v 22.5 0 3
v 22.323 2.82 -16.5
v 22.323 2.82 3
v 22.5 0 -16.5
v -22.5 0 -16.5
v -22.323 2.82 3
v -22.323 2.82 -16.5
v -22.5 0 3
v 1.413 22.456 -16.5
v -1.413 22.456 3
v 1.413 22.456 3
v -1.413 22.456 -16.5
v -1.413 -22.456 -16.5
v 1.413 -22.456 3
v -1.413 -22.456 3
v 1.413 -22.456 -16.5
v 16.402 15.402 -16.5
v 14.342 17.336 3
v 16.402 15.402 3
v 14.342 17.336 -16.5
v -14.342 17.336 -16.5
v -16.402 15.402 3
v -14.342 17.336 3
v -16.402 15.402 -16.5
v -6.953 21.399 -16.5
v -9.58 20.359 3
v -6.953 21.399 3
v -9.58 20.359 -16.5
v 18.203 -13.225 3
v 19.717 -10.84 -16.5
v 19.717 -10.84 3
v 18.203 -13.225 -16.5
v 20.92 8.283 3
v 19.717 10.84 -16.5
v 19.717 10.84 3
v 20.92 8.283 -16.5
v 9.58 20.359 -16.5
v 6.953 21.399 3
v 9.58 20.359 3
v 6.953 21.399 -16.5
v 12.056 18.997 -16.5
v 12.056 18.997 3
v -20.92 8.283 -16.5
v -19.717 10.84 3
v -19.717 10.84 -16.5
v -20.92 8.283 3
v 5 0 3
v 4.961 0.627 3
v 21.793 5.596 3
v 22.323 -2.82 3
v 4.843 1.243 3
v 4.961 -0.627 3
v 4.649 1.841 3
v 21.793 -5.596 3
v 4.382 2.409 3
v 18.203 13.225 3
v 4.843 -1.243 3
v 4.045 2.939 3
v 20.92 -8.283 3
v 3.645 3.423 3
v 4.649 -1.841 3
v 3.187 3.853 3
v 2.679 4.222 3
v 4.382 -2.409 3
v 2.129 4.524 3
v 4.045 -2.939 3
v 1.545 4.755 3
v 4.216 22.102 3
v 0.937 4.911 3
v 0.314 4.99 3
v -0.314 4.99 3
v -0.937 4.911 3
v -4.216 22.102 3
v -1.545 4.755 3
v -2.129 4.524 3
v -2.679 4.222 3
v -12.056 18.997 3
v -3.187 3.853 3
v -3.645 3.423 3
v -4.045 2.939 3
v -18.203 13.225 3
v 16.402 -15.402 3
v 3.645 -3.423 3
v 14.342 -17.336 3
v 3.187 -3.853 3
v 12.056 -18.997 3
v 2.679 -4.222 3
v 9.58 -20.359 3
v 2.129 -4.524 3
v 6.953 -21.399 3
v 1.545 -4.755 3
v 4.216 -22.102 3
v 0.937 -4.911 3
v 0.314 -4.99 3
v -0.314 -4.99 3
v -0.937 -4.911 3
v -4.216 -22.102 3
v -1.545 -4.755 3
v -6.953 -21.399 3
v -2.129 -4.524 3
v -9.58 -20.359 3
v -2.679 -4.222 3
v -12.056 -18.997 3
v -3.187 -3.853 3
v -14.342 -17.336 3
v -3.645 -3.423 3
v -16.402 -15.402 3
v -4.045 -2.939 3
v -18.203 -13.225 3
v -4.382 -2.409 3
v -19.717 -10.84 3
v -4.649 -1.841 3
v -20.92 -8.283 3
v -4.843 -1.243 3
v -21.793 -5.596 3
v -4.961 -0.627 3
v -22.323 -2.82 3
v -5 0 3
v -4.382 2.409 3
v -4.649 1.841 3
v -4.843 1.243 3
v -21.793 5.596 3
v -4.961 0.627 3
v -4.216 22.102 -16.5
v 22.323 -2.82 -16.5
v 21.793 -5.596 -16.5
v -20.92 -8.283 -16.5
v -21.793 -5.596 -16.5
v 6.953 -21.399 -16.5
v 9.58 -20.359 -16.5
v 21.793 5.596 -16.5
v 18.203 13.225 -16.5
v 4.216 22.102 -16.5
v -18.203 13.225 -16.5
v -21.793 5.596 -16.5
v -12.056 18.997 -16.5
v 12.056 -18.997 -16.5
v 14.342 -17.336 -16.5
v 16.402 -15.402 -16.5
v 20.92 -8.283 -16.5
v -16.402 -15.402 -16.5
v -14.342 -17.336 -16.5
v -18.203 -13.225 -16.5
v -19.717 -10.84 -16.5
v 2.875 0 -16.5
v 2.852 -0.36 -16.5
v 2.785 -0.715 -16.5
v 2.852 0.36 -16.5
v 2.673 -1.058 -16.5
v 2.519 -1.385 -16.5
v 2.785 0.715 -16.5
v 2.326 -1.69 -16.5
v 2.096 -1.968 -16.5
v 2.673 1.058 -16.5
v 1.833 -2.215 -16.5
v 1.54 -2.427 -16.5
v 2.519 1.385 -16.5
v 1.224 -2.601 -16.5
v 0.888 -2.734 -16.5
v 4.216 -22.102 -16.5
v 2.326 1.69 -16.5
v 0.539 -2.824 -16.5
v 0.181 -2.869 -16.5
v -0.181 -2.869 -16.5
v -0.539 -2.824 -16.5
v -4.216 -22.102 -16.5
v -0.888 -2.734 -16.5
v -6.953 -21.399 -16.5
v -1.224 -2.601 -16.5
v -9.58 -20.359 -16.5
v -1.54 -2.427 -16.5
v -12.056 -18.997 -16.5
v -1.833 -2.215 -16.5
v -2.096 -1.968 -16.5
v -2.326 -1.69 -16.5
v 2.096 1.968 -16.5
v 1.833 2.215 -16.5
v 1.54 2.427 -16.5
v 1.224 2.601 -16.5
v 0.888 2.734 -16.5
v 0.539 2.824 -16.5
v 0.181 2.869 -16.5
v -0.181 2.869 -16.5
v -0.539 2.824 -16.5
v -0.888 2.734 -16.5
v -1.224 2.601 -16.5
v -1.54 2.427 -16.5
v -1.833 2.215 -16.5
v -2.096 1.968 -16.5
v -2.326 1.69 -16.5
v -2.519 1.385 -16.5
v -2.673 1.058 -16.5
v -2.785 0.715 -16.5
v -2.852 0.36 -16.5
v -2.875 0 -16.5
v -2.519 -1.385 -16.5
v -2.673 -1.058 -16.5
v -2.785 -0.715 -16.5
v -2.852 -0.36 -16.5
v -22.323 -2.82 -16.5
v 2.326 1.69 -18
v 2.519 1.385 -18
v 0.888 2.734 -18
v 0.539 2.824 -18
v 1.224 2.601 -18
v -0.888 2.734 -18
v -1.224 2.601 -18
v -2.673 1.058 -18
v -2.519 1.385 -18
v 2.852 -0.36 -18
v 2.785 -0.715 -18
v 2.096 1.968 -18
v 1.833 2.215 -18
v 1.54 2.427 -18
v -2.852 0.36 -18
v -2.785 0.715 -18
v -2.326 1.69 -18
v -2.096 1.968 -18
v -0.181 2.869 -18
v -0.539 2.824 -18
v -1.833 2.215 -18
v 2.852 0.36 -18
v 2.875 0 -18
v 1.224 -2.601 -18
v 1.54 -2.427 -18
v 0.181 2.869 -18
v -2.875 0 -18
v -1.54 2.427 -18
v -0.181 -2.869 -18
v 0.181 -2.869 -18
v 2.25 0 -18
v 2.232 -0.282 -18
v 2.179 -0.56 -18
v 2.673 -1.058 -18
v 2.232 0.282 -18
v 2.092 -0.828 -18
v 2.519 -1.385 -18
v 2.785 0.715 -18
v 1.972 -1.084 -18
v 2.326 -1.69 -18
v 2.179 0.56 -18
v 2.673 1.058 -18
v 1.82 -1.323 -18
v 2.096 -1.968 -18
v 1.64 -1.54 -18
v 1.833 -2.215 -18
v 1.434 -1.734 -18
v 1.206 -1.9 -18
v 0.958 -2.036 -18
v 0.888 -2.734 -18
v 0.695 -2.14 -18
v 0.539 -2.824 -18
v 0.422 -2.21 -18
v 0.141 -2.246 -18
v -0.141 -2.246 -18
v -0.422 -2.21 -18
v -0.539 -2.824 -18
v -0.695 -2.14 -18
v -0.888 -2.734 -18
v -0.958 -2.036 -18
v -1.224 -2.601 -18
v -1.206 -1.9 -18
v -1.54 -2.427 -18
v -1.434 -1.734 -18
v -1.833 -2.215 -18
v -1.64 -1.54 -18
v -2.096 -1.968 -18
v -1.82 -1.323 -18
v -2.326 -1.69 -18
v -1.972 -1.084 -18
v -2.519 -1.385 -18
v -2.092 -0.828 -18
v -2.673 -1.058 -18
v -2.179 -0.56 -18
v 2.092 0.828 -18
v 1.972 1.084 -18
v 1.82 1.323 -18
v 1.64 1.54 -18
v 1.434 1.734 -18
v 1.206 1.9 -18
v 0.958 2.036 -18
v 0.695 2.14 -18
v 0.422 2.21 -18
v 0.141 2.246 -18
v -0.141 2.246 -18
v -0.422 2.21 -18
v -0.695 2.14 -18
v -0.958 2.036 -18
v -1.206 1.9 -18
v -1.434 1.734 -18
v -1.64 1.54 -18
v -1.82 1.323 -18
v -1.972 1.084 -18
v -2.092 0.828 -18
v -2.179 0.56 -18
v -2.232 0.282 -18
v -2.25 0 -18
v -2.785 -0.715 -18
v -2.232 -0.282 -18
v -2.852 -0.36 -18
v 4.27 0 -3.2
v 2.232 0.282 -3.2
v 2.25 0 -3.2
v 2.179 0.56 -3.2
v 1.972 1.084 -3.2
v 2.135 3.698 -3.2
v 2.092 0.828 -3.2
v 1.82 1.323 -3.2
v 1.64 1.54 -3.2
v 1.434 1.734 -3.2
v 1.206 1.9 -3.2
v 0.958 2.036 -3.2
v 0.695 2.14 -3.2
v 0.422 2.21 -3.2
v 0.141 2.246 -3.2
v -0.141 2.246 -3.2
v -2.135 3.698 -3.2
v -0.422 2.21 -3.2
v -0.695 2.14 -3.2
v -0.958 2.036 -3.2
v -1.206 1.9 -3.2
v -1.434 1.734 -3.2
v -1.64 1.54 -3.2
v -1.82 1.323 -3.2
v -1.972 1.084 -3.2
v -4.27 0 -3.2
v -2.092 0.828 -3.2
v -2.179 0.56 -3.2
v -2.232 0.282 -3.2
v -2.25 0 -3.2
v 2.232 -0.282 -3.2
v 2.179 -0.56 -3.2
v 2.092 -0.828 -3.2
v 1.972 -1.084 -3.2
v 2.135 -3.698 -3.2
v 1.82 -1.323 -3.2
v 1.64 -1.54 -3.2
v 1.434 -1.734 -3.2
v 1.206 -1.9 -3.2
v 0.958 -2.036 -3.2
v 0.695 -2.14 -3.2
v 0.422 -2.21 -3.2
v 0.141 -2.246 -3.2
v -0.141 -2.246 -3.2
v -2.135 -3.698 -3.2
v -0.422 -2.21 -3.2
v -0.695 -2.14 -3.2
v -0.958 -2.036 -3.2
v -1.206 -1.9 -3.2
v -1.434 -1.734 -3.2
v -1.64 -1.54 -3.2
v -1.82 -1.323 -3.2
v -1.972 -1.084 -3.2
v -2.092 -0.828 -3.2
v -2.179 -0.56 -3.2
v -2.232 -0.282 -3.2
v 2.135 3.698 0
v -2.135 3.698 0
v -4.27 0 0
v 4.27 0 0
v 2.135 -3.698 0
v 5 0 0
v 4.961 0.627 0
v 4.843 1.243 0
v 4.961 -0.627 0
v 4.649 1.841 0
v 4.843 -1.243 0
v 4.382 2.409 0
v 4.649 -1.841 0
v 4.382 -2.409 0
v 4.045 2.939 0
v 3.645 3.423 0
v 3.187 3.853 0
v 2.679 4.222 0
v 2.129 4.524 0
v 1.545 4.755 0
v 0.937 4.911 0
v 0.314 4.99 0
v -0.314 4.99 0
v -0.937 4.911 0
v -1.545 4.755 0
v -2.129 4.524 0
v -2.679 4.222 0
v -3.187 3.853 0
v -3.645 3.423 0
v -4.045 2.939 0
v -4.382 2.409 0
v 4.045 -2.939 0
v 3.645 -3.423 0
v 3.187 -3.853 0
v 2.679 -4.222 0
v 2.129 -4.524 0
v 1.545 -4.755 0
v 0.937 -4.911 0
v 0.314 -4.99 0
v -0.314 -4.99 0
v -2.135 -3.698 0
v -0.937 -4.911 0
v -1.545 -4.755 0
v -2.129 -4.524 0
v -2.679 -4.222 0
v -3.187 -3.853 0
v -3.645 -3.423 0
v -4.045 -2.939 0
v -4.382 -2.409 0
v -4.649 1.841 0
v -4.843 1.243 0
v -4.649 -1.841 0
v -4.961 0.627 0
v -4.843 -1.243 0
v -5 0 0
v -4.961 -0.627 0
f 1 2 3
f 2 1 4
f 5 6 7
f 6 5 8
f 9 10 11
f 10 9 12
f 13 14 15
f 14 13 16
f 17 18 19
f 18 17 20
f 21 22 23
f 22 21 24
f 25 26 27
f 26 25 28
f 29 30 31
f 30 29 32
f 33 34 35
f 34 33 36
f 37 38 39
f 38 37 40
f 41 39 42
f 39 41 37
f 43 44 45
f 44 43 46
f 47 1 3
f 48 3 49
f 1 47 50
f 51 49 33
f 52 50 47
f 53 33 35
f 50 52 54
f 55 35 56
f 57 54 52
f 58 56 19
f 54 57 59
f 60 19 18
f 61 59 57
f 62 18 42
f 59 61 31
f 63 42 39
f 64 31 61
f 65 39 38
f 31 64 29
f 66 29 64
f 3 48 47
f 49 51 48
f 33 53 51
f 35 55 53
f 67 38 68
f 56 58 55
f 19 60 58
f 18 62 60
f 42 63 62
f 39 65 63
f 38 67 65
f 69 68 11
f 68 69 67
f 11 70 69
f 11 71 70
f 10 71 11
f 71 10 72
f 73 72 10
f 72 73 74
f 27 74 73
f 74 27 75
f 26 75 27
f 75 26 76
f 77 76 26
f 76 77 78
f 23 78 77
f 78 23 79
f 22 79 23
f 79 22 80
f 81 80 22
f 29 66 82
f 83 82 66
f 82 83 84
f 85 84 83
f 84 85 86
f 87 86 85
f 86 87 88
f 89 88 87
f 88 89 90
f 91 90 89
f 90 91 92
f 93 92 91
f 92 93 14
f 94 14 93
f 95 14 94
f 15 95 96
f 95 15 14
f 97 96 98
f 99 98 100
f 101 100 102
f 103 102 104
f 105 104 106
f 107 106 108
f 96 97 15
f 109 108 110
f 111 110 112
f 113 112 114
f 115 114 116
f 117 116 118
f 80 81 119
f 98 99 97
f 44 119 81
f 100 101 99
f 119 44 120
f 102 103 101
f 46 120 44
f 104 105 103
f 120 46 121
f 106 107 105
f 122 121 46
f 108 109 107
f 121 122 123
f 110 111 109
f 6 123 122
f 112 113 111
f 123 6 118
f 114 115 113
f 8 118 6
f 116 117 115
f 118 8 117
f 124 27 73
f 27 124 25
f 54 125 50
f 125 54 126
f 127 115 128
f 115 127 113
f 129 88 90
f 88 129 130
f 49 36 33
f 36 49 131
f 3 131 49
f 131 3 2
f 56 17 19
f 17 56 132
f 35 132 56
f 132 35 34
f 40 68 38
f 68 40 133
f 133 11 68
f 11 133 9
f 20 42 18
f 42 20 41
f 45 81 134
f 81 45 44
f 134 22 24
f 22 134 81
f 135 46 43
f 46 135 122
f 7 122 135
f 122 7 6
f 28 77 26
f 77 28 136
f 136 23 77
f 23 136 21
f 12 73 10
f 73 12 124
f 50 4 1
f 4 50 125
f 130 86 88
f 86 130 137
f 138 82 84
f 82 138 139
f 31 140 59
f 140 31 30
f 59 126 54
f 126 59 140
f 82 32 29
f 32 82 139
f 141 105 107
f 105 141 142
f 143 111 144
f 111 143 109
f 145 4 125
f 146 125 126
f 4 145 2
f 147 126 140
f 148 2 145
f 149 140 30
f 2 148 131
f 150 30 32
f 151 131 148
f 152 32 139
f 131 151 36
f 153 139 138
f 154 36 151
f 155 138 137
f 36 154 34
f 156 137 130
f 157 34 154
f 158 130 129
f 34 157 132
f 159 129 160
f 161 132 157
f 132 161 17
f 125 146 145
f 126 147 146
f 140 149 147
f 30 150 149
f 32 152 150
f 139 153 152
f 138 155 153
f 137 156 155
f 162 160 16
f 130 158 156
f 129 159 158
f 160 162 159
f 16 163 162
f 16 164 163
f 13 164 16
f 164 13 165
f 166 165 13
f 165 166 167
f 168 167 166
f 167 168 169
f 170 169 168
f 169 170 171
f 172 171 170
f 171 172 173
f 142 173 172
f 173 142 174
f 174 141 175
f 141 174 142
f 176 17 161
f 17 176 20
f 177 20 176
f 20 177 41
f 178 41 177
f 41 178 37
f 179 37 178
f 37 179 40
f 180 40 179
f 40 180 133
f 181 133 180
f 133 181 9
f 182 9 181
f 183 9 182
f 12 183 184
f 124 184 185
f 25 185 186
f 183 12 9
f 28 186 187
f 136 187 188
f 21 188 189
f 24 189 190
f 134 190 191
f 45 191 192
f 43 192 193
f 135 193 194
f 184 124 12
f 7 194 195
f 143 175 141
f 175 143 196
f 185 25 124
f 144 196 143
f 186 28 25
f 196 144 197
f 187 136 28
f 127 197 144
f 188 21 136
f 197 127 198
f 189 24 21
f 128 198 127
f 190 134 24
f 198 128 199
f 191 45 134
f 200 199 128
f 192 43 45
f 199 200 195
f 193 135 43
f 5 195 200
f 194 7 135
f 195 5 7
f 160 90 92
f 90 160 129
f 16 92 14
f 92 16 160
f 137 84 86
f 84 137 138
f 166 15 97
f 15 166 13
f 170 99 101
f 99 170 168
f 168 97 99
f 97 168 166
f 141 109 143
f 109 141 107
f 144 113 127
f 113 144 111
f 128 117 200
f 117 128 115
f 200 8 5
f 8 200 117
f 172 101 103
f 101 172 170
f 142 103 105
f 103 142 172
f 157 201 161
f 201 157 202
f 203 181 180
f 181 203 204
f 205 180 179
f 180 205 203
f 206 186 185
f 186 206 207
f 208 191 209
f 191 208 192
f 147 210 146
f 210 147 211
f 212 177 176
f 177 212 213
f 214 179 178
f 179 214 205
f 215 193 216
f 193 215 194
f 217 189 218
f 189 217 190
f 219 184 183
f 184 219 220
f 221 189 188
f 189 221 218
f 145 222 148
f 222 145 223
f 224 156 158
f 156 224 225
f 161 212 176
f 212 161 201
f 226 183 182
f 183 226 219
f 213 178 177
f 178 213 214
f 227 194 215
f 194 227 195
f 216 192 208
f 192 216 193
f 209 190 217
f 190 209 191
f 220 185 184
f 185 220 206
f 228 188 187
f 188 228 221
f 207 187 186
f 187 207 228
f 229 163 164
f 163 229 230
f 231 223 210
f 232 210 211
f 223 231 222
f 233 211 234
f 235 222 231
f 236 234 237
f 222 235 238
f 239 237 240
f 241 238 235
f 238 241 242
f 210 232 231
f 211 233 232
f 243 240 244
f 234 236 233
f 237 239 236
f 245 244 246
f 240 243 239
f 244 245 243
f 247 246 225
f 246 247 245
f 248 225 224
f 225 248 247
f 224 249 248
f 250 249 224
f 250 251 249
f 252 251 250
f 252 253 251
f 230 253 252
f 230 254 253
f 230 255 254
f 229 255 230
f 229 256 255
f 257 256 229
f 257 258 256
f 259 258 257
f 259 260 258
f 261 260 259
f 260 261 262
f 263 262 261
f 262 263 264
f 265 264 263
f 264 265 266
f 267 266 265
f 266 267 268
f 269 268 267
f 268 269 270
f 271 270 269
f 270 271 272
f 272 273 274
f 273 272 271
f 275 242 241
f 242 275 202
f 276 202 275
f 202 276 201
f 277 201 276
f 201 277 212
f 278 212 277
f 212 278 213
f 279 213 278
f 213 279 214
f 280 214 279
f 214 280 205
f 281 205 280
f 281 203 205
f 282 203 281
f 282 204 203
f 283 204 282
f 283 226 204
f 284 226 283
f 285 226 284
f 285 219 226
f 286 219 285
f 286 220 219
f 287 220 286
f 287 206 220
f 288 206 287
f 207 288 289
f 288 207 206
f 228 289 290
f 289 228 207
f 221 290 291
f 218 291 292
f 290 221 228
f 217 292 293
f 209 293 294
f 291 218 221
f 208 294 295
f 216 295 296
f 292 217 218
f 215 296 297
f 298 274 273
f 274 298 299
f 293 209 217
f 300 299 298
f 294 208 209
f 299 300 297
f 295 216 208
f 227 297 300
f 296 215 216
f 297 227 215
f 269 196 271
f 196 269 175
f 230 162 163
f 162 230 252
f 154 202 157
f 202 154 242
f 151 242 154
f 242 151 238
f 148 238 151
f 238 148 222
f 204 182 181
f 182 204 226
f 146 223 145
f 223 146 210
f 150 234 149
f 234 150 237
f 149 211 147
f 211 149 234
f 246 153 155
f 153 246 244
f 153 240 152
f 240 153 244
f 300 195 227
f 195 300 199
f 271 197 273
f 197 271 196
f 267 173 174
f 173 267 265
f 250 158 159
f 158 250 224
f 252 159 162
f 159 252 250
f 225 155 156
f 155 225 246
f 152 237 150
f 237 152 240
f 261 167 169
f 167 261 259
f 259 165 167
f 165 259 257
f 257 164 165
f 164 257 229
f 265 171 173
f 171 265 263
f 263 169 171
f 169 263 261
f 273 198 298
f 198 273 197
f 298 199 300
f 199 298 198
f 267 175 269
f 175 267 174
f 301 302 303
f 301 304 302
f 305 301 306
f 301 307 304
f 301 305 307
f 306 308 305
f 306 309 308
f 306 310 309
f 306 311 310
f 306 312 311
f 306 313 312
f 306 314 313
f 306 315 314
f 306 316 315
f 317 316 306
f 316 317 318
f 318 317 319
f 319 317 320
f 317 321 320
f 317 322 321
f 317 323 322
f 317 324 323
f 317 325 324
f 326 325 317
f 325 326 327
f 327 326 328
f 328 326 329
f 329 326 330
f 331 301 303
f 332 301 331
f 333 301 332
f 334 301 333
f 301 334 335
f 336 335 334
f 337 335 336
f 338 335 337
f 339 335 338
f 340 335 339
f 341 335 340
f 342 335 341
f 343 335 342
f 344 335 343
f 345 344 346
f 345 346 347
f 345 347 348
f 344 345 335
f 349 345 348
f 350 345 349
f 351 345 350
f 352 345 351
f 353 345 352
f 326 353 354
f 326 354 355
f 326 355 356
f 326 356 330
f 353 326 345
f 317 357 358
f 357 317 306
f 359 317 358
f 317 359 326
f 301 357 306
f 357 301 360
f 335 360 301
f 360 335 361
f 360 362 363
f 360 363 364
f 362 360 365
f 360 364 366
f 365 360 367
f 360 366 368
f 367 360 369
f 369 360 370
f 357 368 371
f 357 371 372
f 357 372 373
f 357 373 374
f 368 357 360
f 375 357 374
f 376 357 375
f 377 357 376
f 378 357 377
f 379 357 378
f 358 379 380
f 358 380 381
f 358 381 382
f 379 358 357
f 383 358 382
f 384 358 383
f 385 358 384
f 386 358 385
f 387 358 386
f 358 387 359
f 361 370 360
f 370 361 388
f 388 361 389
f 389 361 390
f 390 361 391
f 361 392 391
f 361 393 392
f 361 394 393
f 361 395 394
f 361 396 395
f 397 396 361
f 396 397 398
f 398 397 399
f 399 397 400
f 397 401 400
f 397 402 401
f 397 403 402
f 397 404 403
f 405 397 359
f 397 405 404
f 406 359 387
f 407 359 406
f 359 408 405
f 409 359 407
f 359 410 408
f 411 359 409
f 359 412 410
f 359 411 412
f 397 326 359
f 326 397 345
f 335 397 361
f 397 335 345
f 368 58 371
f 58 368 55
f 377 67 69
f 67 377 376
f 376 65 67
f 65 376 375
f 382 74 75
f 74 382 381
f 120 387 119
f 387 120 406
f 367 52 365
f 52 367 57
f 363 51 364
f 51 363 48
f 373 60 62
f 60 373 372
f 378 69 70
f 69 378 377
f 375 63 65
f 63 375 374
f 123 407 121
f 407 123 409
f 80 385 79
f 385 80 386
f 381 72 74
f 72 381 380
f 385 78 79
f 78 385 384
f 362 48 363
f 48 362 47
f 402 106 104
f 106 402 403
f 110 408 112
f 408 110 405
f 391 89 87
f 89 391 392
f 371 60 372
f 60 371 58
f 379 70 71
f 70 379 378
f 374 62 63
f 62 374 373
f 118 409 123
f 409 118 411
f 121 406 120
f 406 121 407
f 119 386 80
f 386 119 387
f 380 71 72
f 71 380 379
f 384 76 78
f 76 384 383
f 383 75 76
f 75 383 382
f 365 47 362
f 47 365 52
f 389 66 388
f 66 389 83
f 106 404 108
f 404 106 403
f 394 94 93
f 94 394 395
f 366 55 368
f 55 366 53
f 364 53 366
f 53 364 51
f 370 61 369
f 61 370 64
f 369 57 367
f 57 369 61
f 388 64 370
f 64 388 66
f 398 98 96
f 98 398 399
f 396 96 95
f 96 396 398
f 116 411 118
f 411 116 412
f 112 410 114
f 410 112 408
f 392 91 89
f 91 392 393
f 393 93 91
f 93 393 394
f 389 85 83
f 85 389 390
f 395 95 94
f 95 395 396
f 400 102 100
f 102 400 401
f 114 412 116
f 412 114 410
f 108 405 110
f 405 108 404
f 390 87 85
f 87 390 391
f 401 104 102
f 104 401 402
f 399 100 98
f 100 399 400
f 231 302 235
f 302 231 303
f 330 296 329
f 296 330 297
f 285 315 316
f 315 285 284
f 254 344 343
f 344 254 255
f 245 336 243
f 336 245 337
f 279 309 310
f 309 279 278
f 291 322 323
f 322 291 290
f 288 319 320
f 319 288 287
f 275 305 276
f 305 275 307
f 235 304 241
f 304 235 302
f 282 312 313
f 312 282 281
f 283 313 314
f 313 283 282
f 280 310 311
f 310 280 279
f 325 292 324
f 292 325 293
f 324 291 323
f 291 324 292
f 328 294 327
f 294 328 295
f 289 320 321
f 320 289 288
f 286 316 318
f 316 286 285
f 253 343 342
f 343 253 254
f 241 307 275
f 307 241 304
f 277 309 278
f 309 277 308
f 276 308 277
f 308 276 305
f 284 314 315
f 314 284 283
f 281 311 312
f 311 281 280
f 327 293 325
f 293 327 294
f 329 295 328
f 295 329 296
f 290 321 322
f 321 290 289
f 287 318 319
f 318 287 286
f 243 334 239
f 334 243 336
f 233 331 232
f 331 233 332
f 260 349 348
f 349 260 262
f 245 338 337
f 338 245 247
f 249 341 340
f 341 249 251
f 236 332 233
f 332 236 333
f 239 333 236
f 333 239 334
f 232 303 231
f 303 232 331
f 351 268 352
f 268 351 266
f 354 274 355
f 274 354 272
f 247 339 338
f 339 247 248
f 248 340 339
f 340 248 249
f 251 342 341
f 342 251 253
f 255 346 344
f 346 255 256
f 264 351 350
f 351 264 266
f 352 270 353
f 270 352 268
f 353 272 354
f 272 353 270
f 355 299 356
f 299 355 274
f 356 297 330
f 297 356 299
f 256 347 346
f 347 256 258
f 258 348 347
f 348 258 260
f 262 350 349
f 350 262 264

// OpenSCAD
$fn = 50;


difference() {
	union() {
		translate(v = [0, 0, -16.5000000000]) {
			cylinder(h = 19.5000000000, r = 22.5000000000);
		}
		#translate(v = [0, 0, -18.0000000000]) {
			cylinder(h = 18, r = 2.8750000000);
		}
	}
	union() {
		translate(v = [0, 0, 0]) {
			rotate(a = [0, 0, 0]) {
				difference() {
					union() {
						translate(v = [0, 0, -3.2000000000]) {
							linear_extrude(height = 3.2000000000) {
								polygon(points = [[4.2698000000, 0.0000000000], [2.1349000000, 3.6977552691], [-2.1349000000, 3.6977552691], [-4.2698000000, 0.0000000000], [-2.1349000000, -3.6977552691], [2.1349000000, -3.6977552691]]);
							}
						}
					}
					union();
				}
			}
		}
		#cylinder(h = 3, r = 5.0000000000);
		#translate(v = [0, 0, -100.0000000000]) {
			cylinder(h = 200, r = 2.2500000000);
		}
	}
}
